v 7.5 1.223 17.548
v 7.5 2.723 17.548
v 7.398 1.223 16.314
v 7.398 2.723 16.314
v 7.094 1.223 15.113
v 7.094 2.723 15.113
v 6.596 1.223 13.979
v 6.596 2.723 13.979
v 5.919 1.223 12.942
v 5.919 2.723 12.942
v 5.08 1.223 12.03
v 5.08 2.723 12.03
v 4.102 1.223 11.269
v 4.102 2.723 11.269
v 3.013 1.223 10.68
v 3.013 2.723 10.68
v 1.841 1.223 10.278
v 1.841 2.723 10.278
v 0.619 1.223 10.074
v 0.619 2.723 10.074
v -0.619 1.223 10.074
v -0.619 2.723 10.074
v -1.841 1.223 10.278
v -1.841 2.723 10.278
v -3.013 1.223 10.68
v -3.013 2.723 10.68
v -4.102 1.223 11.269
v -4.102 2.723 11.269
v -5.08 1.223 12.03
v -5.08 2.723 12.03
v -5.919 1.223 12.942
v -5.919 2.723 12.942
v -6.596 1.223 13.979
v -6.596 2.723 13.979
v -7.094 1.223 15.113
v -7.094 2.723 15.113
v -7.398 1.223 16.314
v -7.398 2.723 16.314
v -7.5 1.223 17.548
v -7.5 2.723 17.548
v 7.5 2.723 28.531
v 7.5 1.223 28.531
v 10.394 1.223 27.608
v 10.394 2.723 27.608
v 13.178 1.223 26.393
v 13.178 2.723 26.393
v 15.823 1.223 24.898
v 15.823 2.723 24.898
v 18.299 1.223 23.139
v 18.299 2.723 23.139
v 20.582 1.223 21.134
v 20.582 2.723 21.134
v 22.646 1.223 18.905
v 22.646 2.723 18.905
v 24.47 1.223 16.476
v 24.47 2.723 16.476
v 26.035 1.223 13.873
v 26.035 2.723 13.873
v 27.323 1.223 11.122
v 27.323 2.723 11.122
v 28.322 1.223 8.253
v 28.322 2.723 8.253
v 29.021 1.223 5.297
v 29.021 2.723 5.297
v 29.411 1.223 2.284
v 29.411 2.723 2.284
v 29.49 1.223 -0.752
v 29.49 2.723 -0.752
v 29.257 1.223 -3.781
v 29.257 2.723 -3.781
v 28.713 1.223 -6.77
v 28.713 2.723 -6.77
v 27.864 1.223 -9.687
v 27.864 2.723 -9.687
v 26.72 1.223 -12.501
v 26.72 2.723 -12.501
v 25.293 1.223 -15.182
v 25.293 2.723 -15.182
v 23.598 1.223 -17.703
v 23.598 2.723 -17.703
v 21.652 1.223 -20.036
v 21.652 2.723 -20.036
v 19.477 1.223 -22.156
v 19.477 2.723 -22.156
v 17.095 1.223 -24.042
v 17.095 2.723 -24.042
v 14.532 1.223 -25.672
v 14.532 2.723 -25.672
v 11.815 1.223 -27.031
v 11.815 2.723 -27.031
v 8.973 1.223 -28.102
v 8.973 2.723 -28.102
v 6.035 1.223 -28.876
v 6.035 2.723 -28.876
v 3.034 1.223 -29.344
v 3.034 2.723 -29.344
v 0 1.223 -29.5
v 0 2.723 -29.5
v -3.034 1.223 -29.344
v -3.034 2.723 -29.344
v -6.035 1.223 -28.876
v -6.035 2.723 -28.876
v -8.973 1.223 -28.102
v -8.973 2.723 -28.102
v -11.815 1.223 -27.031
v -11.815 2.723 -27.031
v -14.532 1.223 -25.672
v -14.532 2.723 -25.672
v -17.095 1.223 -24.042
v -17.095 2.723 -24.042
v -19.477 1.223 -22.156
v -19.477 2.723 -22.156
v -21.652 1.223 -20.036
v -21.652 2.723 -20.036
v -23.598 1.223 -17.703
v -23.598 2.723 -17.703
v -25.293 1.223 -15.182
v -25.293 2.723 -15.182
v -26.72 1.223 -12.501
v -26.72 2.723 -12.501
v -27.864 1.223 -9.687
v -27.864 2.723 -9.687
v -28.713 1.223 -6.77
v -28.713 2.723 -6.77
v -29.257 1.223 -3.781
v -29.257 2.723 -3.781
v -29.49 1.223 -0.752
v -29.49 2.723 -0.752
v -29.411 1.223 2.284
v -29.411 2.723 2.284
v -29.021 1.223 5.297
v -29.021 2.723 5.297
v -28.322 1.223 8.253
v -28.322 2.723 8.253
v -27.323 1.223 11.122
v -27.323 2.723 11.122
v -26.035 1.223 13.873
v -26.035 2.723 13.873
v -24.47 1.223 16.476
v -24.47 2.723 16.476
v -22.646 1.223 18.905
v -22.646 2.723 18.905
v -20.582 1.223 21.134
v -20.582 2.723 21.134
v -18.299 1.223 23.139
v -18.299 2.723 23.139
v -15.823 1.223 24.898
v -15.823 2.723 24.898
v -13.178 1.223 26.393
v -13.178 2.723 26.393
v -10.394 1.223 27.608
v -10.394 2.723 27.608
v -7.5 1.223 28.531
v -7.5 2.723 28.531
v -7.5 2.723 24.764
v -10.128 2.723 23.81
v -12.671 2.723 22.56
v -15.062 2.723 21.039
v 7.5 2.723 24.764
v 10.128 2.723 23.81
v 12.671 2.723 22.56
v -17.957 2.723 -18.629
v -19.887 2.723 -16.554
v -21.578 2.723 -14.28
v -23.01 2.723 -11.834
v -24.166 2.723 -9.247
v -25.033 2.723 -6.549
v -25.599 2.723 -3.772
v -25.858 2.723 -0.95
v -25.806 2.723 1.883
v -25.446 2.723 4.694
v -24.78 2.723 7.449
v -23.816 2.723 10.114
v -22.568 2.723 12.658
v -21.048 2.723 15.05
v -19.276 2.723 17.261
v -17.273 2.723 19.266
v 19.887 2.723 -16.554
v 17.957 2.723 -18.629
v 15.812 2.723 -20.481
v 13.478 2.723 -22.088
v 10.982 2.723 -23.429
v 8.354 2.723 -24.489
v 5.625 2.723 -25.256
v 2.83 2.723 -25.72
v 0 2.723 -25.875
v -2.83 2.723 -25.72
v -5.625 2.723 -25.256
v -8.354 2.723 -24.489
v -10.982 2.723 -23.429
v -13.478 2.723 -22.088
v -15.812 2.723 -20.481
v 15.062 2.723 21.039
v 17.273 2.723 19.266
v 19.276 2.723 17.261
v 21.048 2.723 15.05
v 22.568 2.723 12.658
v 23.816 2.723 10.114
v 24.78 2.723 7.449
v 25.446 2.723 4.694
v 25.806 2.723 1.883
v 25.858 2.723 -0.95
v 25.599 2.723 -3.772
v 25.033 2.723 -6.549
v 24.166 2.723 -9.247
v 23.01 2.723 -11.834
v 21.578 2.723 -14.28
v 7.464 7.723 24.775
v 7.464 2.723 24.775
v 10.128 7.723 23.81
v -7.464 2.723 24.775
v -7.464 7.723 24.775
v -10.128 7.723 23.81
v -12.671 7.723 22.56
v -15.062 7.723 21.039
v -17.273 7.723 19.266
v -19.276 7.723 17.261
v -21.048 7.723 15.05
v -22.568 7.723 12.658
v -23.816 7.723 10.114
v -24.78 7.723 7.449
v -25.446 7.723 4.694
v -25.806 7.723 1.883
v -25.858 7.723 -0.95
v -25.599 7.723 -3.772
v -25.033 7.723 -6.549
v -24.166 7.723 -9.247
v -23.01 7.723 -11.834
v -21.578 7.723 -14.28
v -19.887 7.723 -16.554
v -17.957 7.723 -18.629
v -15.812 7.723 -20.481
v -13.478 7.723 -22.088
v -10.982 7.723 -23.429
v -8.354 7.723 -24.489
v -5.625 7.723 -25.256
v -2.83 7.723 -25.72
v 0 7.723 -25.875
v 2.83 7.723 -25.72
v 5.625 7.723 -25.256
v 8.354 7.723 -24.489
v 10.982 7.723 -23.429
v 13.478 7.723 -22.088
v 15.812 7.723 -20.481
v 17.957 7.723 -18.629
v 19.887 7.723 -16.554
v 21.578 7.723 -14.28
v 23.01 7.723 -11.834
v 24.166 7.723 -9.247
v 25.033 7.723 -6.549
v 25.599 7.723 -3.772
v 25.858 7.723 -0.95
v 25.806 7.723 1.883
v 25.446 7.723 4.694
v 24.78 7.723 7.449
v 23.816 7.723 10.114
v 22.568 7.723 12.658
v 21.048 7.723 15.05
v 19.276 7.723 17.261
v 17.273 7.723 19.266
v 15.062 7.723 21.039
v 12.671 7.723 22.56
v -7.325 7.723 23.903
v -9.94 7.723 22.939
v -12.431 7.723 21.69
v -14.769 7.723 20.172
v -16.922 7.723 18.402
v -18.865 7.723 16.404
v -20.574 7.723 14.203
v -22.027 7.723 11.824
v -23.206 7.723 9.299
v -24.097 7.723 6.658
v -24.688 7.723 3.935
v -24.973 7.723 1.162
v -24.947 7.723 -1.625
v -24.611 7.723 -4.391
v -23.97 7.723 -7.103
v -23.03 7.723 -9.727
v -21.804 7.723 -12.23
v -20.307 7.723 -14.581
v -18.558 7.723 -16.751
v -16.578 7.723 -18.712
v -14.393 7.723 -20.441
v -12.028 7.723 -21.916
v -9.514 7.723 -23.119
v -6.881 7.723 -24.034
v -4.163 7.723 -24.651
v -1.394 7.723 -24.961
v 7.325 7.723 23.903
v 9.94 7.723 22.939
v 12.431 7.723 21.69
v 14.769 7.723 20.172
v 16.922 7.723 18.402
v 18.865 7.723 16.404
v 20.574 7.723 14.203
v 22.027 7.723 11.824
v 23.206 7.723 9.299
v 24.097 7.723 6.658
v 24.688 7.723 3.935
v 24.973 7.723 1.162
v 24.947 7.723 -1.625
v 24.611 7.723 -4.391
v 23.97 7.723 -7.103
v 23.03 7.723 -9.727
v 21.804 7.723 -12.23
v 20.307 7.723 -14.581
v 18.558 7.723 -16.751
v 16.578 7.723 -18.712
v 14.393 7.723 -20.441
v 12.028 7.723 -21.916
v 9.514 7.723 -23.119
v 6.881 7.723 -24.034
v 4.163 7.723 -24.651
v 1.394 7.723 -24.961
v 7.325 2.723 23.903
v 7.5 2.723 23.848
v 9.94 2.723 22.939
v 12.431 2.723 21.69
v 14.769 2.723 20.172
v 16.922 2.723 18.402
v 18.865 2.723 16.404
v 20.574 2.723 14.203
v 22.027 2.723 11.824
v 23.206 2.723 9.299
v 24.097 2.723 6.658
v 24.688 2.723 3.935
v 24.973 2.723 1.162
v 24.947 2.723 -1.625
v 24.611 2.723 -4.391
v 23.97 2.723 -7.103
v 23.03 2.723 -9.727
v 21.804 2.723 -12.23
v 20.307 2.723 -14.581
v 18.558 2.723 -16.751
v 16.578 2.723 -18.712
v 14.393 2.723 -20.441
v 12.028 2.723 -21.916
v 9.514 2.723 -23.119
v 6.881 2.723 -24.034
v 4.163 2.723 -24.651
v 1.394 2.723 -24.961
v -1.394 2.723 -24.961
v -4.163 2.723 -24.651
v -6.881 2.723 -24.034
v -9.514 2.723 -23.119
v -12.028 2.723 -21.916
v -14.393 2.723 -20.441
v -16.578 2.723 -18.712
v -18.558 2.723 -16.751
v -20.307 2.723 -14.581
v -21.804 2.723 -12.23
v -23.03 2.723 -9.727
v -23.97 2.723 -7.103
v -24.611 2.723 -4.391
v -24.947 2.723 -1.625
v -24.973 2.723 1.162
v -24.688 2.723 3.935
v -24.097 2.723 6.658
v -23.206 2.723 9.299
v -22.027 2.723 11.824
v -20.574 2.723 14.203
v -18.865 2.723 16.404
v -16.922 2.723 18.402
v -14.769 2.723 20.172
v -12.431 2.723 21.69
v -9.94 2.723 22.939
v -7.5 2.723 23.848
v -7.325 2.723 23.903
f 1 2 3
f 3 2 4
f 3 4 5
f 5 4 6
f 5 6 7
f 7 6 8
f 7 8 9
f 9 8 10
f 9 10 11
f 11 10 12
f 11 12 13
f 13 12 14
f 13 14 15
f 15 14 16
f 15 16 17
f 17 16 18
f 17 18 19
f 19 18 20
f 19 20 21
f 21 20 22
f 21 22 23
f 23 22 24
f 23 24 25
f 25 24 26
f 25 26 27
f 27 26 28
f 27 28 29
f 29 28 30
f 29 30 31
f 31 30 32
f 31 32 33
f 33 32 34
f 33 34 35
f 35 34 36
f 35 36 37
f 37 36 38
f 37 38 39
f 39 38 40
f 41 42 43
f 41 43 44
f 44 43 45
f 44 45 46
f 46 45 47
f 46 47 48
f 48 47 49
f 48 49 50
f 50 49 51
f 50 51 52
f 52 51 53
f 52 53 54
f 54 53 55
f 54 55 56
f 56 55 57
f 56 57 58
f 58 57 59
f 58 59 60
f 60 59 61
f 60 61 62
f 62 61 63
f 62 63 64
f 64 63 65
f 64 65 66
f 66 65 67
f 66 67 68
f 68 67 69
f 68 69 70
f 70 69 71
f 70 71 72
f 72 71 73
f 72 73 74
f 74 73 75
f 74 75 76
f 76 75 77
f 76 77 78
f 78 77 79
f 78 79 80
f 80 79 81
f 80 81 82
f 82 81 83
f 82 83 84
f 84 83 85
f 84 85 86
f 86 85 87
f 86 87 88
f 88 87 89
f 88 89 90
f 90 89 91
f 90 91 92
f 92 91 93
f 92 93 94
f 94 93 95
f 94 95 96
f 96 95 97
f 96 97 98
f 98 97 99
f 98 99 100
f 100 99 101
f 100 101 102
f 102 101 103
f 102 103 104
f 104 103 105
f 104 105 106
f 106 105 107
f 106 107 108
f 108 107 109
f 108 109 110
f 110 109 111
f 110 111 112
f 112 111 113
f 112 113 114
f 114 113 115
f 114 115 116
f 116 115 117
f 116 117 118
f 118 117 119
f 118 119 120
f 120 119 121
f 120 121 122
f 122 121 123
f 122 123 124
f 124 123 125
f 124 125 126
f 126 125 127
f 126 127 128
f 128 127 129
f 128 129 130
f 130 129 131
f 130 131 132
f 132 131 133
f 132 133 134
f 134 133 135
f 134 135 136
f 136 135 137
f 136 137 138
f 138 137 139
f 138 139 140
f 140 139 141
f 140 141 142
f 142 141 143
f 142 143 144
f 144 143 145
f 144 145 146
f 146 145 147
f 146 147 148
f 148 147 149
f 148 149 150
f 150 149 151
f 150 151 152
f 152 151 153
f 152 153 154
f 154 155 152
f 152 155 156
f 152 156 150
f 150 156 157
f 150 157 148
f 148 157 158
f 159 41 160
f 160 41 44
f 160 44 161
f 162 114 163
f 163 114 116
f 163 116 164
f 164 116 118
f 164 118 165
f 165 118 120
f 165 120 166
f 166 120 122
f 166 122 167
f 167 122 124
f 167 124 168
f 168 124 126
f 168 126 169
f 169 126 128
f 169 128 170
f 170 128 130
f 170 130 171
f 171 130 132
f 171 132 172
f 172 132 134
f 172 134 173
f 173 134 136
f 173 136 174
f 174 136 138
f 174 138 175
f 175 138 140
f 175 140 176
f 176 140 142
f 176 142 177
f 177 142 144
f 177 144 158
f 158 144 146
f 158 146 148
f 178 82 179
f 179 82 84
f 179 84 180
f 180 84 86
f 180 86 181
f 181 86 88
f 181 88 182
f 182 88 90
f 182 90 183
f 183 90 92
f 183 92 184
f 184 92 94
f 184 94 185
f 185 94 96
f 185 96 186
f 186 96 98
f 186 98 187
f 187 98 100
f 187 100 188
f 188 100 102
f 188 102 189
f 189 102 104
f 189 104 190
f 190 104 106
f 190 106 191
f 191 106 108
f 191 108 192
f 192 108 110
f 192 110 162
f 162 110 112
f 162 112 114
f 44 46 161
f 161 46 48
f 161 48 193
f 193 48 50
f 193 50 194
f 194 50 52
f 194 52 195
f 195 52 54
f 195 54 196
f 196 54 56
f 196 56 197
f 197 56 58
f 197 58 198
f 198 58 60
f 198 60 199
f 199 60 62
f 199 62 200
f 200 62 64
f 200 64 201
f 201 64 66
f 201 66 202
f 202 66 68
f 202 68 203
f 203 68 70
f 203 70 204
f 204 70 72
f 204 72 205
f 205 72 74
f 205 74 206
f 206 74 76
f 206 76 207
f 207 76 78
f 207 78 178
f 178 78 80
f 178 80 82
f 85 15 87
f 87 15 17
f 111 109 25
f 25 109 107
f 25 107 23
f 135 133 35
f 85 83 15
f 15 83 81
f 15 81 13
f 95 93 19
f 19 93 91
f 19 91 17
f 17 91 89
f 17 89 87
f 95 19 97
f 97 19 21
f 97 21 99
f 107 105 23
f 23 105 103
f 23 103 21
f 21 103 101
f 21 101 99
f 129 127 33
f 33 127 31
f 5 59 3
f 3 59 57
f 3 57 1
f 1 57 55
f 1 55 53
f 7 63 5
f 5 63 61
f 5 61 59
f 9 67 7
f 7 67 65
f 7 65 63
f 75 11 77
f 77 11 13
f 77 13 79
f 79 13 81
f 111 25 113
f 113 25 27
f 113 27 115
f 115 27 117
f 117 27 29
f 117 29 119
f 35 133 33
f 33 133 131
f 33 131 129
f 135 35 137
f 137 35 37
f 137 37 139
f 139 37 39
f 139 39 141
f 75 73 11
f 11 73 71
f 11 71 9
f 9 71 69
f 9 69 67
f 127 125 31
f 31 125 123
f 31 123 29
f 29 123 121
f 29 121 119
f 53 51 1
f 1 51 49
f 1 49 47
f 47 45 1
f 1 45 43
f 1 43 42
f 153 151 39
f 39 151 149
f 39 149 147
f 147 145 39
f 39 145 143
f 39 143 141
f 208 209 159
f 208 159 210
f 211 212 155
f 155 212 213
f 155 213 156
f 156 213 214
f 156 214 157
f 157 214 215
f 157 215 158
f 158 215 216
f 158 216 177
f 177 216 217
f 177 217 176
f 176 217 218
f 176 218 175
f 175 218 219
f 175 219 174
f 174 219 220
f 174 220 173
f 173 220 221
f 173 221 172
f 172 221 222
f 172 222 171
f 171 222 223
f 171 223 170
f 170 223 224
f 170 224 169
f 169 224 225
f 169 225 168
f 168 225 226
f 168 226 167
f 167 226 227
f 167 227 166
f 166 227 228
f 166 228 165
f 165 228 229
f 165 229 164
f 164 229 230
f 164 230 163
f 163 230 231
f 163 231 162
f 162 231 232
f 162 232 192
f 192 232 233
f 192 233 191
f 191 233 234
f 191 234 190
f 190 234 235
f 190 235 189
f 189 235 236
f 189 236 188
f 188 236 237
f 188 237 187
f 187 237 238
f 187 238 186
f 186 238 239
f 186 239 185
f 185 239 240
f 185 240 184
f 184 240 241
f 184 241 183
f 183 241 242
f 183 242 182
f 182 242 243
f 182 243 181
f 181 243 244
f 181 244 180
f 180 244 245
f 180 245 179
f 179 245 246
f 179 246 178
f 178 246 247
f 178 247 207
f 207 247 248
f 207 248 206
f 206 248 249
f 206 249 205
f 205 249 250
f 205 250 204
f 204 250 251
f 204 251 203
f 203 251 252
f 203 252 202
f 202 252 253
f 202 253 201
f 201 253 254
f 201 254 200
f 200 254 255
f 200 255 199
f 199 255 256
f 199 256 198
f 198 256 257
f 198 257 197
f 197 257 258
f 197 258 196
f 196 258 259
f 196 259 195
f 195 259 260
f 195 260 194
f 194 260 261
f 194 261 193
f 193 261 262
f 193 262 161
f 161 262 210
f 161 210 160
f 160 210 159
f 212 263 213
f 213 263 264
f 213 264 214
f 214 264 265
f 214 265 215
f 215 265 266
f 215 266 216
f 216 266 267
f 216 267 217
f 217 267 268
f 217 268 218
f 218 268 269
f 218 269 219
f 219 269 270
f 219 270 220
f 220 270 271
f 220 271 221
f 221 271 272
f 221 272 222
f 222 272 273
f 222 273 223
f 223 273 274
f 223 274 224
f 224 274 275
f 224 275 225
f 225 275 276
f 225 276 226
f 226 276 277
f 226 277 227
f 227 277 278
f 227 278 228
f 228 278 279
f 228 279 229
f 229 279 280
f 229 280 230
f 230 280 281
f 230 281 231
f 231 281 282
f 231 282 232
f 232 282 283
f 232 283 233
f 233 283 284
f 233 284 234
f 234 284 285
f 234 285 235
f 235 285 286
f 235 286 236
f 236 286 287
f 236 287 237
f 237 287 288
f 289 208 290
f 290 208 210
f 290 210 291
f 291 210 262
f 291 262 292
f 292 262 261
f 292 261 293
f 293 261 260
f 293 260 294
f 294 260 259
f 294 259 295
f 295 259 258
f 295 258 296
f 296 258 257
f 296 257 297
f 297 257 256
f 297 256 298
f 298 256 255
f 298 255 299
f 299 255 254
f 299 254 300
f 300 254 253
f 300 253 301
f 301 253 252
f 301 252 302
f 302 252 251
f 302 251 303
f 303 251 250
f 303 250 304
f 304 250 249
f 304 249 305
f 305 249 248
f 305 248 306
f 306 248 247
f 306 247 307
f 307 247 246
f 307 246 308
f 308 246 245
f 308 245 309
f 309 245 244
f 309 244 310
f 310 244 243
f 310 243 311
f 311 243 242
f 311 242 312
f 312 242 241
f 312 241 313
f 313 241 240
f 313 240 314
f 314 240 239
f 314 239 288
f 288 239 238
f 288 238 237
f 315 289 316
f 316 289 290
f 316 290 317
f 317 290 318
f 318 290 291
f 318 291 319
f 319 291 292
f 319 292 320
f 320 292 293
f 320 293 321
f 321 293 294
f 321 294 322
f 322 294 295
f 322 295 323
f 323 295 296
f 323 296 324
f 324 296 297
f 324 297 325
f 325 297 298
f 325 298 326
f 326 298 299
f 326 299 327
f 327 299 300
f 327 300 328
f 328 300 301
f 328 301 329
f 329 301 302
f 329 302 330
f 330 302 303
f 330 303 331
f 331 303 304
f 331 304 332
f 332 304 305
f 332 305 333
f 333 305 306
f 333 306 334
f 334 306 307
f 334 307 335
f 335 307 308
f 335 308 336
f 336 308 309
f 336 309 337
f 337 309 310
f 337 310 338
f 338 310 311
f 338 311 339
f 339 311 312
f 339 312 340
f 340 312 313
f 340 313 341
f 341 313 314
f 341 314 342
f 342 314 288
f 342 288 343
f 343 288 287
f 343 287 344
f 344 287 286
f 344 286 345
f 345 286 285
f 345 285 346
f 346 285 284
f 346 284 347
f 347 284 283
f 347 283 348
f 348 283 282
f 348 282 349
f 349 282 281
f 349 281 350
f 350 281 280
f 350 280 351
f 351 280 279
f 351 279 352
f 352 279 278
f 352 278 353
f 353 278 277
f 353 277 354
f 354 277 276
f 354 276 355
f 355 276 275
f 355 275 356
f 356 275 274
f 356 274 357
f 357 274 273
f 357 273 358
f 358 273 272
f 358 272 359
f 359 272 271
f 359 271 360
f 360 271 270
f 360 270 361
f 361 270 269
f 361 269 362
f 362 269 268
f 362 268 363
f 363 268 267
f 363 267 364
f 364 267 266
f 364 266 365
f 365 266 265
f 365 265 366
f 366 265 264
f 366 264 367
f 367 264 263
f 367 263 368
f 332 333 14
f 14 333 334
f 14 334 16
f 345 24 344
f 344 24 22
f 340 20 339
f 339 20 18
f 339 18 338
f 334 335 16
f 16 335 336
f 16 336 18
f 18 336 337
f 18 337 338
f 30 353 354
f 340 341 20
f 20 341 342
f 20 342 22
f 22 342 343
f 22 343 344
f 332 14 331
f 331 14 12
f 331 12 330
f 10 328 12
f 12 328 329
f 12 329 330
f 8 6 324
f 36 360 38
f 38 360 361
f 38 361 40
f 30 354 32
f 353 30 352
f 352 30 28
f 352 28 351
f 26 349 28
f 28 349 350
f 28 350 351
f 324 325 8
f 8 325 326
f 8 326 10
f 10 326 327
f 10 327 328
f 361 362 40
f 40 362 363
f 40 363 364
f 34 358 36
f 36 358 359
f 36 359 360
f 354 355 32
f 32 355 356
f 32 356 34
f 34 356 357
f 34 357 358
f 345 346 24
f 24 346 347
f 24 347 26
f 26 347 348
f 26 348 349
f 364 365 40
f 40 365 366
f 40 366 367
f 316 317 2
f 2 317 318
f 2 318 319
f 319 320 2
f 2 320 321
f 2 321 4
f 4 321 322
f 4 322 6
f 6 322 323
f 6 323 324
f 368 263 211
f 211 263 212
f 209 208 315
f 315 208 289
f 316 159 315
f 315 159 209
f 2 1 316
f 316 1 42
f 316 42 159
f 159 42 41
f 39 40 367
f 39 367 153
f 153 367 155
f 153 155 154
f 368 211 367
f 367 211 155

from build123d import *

# Parameters (mm, degrees)
SKETCH1_R           = 59
BOSS_EXTRUDE1_DEPTH = 3
SKETCH3_R           = 51.75
BOSS_EXTRUDE2_DEPTH = 10
SKETCH4_R           = 50
CUT_EXTRUDE2_DEPTH  = 10
SCALE1_SCALE        = 0.5
SKETCH5_R           = 7.5
CUT_EXTRUDE3_DEPTH  = 15
SKETCH6_R           = 7.5
CUT_EXTRUDE4_DEPTH  = 15
SKETCH7_R           = 7.5
CUT_EXTRUDE5_DEPTH  = 15
SKETCH8_W           = 15
SKETCH8_H           = 16.086629849
CUT_EXTRUDE6_DEPTH  = 15


with BuildPart() as part:
    # Sketch1 → Boss-Extrude1 (new body)
    with BuildSketch(Plane(origin=(0, 0, 0), x_dir=(1, 0, 0), z_dir=(0, 1, 0))):
        with Locations(Location((0, 0, 0), (0, 0, 270))):
            Circle(SKETCH1_R)
    extrude(amount=BOSS_EXTRUDE1_DEPTH)

    # Sketch3 → Boss-Extrude2 (add)
    with BuildSketch(Plane(origin=(0, 3, 0), x_dir=(1, 0, 0), z_dir=(0, 1, 0))):
        with Locations(Location((0, 0, 0), (0, 0, 270))):
            Circle(SKETCH3_R)
    extrude(amount=BOSS_EXTRUDE2_DEPTH)

    # Sketch4 → Cut-Extrude2 (cut)
    with BuildSketch(Plane(origin=(0, 13, 0), x_dir=(1, 0, 0), z_dir=(0, 1, 0))):
        with Locations(Location((0, 0, 0), (0, 0, 270))):
            Circle(SKETCH4_R)
    extrude(amount=-CUT_EXTRUDE2_DEPTH, mode=Mode.SUBTRACT)


with BuildPart() as part_1:
    # Scale1: scaled about (0, 2.446860076, 0)
    add(part.part.scale(SCALE1_SCALE).moved(Location((0, 1.223430038, 0))))

    # Sketch5 → Cut-Extrude3 (cut)
    with BuildSketch(Plane(origin=(0, 2.723430038, 0), x_dir=(1, 0, 0), z_dir=(0, 1, 0))):
        with Locations(Location((0, -17.548132192, 0), (0, 0, 270))):
            Circle(SKETCH5_R)
    extrude(amount=-CUT_EXTRUDE3_DEPTH, mode=Mode.SUBTRACT)

    # Sketch6 → Cut-Extrude4 (cut)
    with BuildSketch(Plane(origin=(0, 7.723430038, 0), x_dir=(1, 0, 0), z_dir=(0, 1, 0))):
        with Locations((0, -25.513831206)):
            Circle(SKETCH6_R)
    extrude(amount=-CUT_EXTRUDE4_DEPTH, mode=Mode.SUBTRACT)

    # Sketch7 → Cut-Extrude5 (cut)
    with BuildSketch(Plane(origin=(0, 7.723430038, 0), x_dir=(1, 0, 0), z_dir=(0, 1, 0))):
        with Locations((0, -20.692487066)):
            Circle(SKETCH7_R)
    extrude(amount=-CUT_EXTRUDE5_DEPTH, mode=Mode.SUBTRACT)

    # Sketch8 → Cut-Extrude6 (cut)
    with BuildSketch(Plane(origin=(0, 2.723430038, 0), x_dir=(1, 0, 0), z_dir=(0, 1, 0))):
        with Locations((0, -25.591447116)):
            Rectangle(SKETCH8_W, SKETCH8_H)
    extrude(amount=-CUT_EXTRUDE6_DEPTH, mode=Mode.SUBTRACT)


solid = part_1.part
